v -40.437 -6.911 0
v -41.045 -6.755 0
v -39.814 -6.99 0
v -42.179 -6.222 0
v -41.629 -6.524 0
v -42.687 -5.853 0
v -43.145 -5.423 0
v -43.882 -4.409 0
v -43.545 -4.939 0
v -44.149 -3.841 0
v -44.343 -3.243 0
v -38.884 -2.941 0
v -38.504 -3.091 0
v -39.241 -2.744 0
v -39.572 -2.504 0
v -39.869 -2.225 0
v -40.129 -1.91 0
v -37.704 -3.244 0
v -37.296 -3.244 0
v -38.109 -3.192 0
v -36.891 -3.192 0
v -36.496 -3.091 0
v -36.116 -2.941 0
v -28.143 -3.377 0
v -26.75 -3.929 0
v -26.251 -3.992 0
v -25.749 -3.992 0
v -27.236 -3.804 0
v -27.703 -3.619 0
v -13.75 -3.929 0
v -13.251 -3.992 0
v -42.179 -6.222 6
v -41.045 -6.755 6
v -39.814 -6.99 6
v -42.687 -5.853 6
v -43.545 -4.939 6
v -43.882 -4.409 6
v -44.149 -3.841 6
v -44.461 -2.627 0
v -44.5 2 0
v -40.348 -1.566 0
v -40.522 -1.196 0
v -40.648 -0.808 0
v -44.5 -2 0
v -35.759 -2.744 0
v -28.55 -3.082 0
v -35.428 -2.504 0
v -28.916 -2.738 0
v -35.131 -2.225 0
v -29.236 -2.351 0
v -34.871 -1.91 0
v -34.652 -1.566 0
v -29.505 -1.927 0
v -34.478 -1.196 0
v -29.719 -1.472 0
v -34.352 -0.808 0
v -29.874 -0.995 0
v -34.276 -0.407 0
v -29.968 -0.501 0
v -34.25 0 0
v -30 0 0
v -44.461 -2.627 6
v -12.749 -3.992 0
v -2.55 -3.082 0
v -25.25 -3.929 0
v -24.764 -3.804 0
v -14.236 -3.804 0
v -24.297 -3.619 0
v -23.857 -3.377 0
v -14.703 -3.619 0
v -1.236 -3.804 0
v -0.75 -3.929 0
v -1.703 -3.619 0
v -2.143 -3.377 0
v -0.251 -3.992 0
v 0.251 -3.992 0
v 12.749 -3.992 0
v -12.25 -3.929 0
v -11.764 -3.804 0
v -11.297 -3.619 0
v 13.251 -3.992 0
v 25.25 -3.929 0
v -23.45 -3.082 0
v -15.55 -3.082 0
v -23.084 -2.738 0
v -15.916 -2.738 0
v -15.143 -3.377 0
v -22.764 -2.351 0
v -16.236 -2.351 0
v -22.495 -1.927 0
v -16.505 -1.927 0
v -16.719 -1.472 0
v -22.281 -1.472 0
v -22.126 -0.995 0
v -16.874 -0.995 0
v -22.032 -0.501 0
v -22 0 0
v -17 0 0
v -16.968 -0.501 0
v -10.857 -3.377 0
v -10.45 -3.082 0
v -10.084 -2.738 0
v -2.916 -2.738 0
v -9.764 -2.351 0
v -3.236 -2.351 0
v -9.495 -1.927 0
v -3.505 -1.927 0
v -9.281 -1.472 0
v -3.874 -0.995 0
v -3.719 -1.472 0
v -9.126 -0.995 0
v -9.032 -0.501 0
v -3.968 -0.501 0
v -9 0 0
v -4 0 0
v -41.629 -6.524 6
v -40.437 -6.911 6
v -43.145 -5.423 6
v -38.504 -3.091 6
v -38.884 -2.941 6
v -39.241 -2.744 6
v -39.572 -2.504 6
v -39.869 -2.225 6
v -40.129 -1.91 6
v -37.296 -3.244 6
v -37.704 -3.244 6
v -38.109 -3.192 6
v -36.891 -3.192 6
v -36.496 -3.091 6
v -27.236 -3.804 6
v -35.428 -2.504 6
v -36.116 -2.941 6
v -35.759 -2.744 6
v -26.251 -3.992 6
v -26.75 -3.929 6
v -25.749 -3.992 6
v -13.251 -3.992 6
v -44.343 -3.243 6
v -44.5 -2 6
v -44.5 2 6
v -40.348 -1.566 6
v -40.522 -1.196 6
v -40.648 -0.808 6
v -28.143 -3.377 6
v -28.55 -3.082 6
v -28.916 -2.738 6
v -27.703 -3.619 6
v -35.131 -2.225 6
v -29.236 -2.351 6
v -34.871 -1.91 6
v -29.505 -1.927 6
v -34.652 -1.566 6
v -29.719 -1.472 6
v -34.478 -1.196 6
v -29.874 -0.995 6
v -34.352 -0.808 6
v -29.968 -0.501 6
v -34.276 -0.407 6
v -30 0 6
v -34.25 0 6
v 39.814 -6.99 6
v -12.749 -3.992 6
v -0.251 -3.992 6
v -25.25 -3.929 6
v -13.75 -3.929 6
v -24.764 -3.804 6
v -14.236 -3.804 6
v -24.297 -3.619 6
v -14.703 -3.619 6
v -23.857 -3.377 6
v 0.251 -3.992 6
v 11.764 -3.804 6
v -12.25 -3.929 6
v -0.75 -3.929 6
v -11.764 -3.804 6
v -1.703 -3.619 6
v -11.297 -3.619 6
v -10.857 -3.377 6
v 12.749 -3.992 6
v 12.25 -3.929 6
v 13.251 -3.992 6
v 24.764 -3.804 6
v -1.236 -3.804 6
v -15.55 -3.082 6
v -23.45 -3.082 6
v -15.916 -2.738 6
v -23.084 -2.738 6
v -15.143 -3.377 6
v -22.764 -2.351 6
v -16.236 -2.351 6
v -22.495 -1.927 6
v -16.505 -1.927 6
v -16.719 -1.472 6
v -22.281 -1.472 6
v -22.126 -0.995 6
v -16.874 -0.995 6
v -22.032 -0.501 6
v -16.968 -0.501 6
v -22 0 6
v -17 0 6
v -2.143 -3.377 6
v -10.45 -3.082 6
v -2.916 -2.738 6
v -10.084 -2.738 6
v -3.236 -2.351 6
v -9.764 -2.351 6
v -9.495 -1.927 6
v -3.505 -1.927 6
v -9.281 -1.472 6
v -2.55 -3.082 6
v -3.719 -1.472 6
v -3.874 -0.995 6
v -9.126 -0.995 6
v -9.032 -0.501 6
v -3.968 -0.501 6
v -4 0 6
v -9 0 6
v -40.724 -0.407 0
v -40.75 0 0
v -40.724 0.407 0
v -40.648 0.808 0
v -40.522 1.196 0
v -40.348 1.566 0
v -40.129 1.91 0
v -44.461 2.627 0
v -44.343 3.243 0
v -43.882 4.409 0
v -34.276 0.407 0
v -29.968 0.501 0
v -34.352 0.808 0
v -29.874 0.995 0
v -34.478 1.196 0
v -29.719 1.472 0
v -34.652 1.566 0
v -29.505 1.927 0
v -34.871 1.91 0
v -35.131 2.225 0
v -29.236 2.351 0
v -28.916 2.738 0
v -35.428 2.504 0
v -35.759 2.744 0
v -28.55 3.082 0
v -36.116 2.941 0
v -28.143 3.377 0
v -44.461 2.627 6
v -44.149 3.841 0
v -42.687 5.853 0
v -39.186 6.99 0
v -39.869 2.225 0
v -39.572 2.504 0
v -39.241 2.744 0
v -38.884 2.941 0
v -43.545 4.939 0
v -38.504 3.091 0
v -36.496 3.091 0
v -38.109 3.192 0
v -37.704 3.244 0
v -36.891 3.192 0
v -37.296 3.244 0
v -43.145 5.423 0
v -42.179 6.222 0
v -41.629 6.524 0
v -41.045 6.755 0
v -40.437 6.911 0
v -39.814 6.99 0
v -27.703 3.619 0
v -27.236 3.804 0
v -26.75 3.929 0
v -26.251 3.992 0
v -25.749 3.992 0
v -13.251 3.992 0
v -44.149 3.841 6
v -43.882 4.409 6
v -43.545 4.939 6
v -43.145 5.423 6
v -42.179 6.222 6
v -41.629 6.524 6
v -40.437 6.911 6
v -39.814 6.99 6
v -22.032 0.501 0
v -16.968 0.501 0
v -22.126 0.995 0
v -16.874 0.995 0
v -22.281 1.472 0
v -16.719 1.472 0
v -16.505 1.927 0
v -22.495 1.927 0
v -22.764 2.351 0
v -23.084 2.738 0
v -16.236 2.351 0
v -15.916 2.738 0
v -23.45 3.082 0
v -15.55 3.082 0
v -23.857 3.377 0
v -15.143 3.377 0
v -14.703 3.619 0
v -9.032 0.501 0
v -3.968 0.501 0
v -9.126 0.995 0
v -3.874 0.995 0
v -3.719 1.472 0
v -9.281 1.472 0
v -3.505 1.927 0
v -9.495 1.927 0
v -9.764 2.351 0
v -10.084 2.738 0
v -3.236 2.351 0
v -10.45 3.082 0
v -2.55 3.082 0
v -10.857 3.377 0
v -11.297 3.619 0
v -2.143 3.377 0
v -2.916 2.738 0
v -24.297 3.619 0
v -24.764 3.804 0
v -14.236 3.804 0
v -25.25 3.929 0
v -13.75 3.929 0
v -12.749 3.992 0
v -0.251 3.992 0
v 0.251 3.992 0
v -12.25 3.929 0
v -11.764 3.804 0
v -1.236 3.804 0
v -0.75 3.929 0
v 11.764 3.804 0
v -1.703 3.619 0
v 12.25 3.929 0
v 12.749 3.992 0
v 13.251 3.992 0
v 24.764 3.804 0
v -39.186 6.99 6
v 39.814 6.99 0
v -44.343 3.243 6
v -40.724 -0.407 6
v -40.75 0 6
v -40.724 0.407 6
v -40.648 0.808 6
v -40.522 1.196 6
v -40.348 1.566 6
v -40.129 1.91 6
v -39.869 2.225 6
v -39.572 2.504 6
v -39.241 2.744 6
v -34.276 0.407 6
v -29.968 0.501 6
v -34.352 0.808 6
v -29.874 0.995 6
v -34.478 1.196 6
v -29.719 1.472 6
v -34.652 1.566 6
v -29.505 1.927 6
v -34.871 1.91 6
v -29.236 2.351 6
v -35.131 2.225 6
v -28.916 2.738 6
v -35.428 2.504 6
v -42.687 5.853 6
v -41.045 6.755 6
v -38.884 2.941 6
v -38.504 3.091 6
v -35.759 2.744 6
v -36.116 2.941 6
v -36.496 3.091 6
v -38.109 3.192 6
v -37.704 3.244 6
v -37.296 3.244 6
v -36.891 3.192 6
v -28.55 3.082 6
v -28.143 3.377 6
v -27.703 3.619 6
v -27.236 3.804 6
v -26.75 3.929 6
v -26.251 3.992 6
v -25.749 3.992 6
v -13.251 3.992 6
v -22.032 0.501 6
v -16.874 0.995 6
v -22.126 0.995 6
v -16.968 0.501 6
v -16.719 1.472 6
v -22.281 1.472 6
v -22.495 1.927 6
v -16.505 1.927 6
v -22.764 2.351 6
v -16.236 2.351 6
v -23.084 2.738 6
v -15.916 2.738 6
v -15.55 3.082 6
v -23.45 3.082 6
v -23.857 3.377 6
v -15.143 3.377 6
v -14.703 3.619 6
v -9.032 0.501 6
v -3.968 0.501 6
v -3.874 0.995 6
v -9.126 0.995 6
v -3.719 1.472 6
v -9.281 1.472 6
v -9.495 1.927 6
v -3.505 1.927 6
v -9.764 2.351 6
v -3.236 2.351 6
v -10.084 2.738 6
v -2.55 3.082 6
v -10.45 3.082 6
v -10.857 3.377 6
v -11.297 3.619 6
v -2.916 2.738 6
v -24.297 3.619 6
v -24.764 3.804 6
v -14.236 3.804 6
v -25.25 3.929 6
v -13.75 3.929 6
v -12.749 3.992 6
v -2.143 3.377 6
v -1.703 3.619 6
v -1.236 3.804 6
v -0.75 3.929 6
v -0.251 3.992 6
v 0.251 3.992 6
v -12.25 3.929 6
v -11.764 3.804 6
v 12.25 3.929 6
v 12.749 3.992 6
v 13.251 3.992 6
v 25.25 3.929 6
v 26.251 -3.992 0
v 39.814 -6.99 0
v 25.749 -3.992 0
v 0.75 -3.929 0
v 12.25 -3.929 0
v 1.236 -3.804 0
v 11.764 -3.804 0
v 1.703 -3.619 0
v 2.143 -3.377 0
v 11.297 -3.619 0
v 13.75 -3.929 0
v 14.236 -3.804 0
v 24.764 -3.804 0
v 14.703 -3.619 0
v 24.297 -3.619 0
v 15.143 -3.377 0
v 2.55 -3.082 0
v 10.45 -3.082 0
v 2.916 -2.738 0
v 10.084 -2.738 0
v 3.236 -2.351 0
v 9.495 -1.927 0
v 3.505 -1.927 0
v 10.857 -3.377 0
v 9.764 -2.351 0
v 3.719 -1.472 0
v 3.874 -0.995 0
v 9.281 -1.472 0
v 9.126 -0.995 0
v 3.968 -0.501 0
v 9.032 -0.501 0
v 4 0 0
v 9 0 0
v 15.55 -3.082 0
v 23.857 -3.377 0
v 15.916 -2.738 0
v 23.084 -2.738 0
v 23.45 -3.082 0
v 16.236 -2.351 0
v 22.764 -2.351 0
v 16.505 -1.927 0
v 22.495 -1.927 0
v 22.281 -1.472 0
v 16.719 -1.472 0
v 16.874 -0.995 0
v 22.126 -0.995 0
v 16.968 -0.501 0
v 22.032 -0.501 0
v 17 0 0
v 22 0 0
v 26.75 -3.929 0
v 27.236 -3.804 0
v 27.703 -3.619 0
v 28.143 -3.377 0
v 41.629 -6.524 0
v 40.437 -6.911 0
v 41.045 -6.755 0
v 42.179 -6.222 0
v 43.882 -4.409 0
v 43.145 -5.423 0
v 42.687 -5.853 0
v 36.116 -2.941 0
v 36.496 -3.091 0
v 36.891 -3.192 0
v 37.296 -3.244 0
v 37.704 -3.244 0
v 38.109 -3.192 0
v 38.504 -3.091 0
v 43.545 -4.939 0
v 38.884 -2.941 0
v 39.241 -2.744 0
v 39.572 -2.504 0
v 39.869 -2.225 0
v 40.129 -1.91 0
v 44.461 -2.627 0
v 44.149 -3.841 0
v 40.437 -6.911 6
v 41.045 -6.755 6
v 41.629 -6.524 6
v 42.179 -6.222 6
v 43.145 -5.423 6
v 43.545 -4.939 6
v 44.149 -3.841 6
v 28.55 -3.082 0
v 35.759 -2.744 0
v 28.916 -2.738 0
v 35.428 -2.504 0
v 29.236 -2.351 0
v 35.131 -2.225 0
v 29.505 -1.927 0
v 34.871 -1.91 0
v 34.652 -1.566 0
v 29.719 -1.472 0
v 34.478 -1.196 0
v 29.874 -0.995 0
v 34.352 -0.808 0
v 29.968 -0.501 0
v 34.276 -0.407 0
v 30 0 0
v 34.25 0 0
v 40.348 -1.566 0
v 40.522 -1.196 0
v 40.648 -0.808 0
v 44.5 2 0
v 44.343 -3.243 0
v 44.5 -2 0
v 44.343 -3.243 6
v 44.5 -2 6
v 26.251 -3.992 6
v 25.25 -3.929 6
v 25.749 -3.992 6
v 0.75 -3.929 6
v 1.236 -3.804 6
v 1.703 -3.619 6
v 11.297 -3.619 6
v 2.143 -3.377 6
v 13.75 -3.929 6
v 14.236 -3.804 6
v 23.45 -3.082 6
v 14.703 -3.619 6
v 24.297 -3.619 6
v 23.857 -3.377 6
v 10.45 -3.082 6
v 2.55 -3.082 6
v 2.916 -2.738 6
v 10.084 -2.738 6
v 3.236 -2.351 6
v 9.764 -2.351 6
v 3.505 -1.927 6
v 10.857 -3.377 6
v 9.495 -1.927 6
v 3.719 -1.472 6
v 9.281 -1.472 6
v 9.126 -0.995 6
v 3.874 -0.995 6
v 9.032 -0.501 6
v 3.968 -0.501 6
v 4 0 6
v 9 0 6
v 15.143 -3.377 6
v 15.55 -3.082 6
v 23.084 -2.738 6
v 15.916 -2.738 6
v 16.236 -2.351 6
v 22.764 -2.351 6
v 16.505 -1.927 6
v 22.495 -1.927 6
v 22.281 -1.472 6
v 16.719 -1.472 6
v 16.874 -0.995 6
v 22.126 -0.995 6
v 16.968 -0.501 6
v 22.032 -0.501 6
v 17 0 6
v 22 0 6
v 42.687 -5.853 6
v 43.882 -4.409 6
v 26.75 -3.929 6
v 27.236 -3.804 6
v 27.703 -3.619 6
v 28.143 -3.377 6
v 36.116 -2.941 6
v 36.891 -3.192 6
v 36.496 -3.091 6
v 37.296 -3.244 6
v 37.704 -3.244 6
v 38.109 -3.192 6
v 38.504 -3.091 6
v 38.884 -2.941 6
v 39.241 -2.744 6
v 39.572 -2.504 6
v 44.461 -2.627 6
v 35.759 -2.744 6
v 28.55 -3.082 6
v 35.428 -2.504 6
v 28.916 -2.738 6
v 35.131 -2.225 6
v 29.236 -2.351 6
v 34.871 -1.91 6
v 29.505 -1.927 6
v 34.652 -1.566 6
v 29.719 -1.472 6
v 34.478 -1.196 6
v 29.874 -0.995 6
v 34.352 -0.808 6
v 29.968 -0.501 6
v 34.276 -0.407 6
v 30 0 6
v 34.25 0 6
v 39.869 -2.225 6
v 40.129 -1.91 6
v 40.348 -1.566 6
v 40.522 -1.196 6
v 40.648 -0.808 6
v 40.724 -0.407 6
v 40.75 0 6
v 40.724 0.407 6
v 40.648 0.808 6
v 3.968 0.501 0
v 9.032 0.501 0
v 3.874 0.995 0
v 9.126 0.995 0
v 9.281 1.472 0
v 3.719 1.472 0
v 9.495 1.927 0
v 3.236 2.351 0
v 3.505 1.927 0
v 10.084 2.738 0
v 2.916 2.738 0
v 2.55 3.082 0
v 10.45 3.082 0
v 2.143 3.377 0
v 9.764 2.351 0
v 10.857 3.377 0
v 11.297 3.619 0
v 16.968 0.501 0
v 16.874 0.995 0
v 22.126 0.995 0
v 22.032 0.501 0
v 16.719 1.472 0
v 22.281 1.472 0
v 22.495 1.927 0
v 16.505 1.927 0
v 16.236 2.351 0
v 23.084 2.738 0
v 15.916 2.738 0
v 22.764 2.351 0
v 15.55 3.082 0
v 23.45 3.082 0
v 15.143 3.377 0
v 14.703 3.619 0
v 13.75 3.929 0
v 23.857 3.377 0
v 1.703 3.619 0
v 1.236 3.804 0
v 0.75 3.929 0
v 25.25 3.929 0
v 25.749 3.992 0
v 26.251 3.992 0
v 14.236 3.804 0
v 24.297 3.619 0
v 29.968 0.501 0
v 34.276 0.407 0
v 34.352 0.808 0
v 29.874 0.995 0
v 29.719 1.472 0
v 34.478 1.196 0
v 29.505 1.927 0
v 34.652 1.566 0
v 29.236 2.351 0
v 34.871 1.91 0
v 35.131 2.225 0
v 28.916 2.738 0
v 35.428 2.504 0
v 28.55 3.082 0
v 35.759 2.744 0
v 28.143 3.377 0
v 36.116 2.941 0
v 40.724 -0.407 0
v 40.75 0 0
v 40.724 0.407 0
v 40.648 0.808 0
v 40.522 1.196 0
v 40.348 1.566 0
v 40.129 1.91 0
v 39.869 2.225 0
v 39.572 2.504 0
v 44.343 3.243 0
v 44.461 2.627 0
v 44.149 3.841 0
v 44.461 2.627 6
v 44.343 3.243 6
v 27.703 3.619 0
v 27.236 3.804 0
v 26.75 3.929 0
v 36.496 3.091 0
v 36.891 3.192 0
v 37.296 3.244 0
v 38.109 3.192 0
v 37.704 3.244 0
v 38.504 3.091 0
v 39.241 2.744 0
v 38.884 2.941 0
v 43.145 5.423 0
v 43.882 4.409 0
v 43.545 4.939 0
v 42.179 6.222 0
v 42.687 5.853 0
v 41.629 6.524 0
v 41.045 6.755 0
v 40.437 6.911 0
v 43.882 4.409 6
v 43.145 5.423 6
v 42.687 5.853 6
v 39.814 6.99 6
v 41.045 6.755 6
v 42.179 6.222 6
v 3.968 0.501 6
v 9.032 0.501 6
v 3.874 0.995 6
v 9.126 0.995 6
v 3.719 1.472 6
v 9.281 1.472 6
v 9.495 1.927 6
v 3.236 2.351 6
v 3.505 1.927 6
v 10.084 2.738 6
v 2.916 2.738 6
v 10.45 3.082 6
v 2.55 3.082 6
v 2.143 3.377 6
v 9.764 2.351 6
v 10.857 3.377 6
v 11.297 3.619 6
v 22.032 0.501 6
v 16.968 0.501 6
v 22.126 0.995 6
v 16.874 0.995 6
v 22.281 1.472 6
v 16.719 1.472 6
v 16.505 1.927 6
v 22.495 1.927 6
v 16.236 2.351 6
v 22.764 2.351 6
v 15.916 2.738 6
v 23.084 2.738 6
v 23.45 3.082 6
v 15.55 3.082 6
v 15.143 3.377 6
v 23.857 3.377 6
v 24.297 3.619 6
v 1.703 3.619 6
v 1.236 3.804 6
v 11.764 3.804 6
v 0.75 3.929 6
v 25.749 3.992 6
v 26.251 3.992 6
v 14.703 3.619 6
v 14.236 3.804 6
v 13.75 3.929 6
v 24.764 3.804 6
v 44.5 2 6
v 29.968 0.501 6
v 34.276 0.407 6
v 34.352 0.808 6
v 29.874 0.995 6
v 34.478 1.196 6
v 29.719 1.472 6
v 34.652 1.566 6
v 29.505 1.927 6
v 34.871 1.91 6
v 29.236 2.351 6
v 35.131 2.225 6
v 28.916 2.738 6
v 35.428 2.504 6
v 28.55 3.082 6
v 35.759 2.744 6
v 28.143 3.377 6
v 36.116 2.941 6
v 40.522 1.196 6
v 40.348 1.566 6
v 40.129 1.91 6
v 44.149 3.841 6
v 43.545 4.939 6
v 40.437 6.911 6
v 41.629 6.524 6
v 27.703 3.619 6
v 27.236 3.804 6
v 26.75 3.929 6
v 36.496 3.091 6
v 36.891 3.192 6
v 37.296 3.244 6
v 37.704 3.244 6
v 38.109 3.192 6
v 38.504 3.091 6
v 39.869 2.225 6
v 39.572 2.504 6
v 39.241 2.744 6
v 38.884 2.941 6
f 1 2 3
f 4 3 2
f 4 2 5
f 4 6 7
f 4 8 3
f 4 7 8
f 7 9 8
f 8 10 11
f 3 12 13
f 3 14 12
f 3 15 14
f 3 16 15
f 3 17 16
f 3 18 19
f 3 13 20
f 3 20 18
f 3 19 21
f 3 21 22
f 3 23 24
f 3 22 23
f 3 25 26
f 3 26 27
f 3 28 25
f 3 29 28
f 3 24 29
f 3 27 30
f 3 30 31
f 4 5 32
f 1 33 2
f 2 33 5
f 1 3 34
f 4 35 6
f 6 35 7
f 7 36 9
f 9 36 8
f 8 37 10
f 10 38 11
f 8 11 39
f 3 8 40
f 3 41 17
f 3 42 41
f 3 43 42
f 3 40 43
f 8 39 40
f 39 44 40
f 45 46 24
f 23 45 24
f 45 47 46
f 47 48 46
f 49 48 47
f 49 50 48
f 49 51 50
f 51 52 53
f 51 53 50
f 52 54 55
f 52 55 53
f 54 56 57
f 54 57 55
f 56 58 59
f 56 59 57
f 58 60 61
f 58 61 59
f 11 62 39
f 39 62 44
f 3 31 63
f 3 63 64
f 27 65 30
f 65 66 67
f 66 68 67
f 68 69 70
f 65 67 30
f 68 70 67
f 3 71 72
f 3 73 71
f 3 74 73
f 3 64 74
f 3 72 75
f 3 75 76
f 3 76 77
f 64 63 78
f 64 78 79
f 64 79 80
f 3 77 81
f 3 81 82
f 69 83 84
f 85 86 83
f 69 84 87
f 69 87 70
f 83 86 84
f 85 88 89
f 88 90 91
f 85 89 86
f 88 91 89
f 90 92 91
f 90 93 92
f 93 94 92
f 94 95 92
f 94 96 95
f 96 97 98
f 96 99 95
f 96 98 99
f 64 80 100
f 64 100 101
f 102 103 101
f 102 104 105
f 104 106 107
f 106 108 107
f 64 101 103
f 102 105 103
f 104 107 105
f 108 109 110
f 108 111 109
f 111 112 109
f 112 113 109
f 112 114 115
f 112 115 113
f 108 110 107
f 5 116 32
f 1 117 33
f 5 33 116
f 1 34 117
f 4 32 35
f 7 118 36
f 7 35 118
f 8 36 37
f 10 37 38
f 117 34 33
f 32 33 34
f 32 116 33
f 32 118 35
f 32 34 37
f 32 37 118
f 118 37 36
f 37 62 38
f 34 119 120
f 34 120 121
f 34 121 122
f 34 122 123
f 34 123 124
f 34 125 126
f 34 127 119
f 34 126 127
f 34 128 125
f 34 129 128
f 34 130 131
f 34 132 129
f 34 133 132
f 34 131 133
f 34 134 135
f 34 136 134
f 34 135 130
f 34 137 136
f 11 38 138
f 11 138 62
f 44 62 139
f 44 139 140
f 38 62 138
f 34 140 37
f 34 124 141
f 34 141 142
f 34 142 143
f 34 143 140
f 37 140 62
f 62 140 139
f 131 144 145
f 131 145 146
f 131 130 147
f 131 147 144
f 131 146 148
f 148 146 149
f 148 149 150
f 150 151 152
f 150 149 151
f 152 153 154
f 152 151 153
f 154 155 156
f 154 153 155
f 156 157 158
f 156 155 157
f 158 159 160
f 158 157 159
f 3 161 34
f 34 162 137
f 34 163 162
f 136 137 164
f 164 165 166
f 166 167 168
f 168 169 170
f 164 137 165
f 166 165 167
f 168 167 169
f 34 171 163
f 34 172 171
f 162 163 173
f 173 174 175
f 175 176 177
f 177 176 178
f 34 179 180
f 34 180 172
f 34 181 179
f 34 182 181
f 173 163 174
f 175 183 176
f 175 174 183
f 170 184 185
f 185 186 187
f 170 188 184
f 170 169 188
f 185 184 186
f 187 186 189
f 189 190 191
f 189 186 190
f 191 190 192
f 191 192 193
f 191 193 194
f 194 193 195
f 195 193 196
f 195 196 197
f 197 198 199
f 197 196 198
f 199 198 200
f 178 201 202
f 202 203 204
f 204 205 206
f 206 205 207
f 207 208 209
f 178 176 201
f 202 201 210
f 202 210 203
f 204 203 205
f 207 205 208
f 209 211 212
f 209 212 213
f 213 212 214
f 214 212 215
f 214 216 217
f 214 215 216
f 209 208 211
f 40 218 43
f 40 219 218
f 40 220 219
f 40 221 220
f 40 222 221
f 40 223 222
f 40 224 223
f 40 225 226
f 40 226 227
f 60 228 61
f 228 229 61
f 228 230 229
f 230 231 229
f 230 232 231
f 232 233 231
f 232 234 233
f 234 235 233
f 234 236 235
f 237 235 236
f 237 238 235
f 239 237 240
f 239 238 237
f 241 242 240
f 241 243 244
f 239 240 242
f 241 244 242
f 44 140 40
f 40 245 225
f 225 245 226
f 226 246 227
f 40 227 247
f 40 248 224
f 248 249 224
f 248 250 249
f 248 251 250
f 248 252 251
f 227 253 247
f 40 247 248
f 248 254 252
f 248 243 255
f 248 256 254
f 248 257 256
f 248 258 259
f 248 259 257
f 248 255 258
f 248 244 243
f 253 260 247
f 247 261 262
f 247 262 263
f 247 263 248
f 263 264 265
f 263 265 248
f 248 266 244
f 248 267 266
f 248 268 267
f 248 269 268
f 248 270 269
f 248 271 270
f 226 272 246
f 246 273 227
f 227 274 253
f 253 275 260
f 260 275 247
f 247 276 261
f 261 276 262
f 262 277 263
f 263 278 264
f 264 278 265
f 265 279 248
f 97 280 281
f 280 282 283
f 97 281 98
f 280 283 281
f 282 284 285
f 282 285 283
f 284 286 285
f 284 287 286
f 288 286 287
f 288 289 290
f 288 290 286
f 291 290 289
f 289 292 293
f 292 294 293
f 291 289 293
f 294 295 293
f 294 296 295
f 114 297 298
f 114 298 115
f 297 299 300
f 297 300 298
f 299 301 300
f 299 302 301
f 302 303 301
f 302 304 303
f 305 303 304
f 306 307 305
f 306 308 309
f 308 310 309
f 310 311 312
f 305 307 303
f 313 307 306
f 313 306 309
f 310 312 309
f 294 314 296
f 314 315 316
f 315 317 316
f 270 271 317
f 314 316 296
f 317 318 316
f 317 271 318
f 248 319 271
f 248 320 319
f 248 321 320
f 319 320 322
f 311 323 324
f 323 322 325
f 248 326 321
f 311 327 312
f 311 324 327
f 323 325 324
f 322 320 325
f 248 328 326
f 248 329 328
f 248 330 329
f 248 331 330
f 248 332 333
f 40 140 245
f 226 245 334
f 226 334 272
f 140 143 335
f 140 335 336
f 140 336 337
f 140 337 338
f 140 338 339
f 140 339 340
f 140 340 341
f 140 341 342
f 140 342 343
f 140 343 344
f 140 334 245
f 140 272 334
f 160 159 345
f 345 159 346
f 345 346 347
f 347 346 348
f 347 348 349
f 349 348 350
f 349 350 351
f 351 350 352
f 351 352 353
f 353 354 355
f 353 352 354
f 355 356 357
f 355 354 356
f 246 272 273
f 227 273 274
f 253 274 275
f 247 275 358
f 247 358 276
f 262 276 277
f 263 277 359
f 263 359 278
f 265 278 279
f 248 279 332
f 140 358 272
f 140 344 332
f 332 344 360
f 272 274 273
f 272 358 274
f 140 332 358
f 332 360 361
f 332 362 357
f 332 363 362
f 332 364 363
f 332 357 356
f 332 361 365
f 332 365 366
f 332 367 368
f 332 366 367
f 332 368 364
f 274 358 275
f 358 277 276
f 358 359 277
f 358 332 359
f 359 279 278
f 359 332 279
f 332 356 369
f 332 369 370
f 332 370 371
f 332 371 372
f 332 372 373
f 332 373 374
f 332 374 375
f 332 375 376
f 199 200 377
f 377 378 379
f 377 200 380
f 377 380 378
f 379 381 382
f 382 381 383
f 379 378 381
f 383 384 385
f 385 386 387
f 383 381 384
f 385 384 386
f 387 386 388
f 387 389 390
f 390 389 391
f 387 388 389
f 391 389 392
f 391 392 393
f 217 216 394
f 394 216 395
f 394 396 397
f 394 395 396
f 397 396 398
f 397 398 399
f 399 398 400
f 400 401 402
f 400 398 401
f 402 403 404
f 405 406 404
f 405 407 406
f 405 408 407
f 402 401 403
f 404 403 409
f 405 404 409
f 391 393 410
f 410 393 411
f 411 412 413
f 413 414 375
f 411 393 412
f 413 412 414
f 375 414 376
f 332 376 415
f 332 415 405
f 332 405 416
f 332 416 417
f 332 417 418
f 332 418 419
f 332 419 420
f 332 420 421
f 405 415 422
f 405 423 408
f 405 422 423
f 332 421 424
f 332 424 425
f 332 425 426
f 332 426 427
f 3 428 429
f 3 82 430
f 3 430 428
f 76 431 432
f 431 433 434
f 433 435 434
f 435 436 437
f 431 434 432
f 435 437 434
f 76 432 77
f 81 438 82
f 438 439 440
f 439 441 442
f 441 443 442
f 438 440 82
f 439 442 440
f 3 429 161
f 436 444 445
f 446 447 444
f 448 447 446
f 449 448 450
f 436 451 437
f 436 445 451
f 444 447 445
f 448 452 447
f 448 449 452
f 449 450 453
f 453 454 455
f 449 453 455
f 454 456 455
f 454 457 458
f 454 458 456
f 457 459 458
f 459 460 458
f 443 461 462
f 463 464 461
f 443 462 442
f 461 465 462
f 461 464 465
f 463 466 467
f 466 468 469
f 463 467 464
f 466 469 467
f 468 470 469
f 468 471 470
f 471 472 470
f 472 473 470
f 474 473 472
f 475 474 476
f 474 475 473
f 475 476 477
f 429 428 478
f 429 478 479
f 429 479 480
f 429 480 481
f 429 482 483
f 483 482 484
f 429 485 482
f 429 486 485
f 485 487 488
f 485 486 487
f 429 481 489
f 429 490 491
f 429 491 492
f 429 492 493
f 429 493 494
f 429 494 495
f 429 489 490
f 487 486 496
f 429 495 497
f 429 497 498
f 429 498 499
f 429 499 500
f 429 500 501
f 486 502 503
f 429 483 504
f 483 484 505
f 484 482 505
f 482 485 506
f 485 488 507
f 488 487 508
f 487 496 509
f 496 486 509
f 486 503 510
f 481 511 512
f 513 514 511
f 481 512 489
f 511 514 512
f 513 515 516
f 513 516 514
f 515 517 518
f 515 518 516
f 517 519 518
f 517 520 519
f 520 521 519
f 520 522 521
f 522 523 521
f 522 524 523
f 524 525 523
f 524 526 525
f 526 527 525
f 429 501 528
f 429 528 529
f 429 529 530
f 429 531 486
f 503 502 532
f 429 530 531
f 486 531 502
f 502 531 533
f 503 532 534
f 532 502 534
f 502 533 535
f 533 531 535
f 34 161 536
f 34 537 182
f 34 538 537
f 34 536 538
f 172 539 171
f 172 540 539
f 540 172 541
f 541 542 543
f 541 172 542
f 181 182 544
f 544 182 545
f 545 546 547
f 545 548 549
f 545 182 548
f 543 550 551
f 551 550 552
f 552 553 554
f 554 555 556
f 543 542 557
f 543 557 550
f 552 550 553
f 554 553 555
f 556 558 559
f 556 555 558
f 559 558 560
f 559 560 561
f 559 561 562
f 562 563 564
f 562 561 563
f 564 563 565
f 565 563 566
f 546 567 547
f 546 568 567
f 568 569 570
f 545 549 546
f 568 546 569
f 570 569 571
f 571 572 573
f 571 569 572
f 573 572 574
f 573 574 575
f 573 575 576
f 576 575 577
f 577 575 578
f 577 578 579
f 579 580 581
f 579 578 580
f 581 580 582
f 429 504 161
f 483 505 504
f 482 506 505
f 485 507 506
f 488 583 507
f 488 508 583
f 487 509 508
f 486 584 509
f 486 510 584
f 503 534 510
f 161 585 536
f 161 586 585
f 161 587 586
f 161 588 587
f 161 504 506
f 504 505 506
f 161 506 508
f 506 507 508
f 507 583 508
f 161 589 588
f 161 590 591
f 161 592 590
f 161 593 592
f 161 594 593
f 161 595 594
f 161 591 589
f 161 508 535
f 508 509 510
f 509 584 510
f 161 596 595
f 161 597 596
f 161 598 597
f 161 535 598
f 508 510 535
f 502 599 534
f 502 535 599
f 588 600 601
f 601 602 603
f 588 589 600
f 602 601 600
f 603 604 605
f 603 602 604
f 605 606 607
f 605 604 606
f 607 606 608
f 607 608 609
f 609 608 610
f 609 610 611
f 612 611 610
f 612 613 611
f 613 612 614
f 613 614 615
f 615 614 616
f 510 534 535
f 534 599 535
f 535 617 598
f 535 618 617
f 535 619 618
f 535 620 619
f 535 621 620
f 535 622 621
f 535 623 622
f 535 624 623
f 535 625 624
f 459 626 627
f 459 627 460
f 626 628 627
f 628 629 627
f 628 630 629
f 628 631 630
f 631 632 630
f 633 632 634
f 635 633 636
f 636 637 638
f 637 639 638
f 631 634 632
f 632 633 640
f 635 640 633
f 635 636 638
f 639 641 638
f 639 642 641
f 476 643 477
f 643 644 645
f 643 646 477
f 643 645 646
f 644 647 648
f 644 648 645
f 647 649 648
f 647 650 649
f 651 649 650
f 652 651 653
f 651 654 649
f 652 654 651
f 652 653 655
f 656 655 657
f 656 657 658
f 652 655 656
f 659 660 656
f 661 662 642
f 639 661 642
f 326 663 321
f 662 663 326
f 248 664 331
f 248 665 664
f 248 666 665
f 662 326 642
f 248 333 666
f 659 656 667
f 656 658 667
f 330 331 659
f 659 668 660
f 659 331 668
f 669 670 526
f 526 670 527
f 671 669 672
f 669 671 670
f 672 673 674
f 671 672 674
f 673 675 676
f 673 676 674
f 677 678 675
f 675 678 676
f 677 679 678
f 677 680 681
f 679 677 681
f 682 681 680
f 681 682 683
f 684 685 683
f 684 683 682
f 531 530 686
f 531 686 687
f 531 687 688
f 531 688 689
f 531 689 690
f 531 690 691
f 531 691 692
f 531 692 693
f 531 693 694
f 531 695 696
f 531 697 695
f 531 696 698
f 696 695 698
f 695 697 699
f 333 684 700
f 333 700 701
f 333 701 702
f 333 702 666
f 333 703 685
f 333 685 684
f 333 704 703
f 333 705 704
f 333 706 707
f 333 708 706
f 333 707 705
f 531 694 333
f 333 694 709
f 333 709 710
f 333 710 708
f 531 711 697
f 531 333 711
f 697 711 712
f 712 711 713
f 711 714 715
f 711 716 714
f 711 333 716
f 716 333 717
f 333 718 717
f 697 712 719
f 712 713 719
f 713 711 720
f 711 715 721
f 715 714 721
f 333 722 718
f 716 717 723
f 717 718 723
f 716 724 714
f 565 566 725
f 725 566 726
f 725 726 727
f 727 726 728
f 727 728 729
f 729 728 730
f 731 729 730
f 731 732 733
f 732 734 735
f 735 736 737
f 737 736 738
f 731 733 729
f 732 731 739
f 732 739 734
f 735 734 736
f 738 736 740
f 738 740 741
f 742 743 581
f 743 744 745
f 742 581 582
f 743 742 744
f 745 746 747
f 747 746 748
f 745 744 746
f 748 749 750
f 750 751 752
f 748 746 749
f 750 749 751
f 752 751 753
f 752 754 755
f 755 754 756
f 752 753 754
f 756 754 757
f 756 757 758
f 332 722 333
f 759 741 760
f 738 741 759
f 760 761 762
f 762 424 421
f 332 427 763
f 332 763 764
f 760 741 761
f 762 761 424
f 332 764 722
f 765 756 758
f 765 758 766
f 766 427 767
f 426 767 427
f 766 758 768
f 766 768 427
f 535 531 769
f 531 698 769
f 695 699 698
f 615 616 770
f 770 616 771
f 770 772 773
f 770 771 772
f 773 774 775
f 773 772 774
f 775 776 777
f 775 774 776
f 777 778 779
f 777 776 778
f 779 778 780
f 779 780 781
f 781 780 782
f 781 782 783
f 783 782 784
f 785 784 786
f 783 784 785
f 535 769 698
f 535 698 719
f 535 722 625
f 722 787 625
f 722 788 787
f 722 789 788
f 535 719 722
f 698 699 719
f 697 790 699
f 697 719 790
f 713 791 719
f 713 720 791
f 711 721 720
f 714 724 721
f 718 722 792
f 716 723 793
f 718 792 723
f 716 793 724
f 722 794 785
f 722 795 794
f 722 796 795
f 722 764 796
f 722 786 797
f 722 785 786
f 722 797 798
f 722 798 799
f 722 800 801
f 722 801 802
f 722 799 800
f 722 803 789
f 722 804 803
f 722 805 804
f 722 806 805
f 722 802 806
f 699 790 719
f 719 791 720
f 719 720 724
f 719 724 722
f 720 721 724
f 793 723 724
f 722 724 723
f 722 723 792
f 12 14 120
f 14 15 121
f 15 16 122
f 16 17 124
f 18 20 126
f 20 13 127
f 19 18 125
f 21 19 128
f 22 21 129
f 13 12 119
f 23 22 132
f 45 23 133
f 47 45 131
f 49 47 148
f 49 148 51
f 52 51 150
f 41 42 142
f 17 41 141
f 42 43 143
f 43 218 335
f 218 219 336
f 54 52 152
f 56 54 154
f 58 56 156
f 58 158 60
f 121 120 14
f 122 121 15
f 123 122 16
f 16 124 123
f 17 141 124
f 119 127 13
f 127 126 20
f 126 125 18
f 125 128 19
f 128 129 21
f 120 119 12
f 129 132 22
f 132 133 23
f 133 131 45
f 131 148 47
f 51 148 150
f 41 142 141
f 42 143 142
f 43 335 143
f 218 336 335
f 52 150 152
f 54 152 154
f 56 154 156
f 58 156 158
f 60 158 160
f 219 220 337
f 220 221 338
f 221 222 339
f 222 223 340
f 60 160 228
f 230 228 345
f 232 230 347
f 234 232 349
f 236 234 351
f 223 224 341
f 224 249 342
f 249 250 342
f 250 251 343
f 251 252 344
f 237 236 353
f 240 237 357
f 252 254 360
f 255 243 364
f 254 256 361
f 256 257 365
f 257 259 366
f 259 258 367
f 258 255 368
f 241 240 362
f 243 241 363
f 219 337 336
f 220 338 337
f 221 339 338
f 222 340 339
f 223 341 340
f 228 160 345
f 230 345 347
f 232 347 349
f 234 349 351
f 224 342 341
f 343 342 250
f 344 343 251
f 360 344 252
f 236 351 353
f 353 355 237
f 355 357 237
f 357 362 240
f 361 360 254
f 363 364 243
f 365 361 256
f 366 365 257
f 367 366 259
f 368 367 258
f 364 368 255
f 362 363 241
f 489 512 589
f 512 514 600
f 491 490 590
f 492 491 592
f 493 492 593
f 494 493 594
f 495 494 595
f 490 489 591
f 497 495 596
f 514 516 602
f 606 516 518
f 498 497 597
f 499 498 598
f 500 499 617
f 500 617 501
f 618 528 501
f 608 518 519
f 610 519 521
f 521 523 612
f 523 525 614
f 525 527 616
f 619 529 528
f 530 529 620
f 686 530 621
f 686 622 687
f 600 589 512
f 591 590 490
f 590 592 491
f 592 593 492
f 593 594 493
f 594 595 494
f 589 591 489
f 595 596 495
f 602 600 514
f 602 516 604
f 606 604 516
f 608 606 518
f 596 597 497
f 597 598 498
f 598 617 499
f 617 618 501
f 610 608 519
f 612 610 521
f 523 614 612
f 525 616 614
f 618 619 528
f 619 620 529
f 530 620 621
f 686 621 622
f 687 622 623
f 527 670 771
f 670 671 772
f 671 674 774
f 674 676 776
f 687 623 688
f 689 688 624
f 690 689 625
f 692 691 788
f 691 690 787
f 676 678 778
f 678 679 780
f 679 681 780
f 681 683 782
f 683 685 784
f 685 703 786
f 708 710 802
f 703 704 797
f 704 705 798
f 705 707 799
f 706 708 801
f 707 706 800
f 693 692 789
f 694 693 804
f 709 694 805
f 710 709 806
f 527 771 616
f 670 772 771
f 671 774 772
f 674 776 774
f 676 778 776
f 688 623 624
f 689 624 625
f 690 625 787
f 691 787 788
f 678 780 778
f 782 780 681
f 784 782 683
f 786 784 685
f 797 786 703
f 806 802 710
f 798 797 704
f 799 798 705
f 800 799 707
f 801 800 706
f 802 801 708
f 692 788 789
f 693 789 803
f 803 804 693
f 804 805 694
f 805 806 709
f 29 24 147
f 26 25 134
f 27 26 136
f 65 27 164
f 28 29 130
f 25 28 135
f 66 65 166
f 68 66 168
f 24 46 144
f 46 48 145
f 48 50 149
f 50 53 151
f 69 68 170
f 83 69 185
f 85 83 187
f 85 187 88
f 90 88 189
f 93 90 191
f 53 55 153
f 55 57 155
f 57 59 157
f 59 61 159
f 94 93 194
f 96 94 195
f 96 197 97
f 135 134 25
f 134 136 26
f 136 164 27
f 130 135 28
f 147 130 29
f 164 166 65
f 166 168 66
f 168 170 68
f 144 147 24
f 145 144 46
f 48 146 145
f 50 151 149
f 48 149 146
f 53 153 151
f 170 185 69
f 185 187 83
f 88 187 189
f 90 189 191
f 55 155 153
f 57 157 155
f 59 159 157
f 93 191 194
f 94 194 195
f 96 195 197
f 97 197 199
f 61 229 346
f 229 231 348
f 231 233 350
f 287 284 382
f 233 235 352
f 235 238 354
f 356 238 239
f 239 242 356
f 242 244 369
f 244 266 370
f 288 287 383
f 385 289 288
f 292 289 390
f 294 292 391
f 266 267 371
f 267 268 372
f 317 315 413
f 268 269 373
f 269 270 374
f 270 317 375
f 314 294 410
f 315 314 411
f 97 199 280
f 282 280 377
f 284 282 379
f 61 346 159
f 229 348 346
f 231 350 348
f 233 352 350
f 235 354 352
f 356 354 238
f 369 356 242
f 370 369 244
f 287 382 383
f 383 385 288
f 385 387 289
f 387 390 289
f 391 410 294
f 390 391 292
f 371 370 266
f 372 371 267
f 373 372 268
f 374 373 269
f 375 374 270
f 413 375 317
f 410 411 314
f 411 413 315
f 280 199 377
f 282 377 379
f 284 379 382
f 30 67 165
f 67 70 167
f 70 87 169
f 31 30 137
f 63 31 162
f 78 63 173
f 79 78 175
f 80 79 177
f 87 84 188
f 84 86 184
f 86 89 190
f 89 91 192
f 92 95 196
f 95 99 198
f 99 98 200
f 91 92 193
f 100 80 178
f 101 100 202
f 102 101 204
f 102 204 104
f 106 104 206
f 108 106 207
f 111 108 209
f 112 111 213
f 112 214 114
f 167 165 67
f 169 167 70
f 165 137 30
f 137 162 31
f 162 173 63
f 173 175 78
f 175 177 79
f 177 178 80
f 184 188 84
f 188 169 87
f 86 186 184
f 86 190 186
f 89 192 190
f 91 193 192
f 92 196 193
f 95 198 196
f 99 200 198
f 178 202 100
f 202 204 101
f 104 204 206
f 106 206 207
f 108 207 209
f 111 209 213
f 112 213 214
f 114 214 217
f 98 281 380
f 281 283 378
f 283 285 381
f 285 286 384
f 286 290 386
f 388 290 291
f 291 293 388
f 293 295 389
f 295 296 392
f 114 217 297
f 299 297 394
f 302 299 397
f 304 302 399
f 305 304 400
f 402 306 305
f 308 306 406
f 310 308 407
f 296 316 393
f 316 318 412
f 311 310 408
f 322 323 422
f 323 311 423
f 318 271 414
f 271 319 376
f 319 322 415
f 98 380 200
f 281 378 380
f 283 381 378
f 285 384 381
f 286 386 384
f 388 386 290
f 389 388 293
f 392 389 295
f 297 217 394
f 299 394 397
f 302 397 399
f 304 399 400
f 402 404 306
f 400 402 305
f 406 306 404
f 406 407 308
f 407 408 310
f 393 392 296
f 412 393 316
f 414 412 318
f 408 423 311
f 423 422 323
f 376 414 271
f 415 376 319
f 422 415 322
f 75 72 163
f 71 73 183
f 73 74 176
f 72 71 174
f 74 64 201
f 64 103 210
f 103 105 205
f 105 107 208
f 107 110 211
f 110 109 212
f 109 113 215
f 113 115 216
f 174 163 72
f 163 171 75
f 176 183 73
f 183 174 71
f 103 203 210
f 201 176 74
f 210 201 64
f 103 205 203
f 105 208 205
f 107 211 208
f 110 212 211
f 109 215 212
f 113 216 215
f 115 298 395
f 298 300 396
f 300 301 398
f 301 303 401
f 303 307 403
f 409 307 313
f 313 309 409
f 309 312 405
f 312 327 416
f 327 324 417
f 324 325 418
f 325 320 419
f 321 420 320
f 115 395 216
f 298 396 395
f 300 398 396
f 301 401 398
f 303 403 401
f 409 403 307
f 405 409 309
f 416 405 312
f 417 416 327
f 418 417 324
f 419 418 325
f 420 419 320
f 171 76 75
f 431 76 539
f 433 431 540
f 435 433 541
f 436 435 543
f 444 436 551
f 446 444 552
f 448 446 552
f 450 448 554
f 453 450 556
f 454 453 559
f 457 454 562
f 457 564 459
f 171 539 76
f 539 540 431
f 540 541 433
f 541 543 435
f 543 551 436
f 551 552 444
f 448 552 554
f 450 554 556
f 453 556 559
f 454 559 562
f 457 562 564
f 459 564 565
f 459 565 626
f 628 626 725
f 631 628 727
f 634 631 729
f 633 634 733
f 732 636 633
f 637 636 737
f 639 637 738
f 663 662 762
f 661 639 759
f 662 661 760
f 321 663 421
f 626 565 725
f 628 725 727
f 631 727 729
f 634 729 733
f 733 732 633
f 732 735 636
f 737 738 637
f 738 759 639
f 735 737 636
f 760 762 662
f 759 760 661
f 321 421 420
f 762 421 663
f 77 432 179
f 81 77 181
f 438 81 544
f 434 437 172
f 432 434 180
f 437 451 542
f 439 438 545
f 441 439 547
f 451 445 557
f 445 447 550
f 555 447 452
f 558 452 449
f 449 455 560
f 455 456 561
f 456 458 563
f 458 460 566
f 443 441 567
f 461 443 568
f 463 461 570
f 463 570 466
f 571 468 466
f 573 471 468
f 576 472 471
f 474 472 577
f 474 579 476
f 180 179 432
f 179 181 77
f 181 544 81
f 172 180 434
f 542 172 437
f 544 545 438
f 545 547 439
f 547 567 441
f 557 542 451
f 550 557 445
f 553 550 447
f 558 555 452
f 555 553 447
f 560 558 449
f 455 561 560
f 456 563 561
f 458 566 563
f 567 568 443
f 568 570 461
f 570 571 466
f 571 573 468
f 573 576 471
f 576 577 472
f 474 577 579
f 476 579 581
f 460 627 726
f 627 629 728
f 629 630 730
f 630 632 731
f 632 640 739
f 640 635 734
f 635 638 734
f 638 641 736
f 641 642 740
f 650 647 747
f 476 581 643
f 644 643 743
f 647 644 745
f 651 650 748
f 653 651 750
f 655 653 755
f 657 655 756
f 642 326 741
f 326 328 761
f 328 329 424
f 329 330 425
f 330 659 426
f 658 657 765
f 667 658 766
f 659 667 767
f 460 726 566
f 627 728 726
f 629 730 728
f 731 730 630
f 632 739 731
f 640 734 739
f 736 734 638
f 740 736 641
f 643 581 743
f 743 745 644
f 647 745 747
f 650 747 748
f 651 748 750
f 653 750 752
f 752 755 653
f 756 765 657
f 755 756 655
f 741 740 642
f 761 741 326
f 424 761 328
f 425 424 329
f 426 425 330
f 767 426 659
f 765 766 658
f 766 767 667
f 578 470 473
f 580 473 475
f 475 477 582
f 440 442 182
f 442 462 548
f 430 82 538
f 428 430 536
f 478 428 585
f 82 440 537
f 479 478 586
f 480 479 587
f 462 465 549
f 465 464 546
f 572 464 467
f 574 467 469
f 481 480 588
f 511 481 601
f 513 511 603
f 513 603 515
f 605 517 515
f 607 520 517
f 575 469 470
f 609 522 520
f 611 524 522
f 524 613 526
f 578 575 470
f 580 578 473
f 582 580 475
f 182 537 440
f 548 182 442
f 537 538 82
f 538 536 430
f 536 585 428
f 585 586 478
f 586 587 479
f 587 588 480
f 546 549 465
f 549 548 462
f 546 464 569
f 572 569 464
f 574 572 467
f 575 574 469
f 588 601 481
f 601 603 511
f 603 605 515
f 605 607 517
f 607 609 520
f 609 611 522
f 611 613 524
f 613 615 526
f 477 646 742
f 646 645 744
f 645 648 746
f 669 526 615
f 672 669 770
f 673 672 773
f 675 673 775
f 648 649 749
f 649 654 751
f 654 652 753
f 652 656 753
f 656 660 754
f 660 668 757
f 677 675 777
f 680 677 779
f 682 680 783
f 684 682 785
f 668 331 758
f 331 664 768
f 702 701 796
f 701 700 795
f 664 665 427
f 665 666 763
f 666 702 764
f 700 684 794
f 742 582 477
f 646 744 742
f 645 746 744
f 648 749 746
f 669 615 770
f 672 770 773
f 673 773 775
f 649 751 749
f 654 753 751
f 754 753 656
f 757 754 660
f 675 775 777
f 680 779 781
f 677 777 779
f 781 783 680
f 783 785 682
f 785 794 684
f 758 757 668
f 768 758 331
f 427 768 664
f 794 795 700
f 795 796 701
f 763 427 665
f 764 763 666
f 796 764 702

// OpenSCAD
$fn = 50;

difference() {
	union() {
		hull() {
			translate(v = [-39.5, 2.0, 0]) {
				cylinder(h = 6, r = 5);
			}
			translate(v = [39.5, 2.0, 0]) {
				cylinder(h = 6, r = 5);
			}
			translate(v = [-39.5, -2.0, 0]) {
				cylinder(h = 6, r = 5);
			}
			translate(v = [39.5, -2.0, 0]) {
				cylinder(h = 6, r = 5);
			}
		}
	}
	union() {
		translate(v = [-37.5, 0.0, 0]) {
			cylinder(h = 6, r = 3.25);
		}
		translate(v = [37.5, 0.0, 0]) {
			cylinder(h = 6, r = 3.25);
		}
		translate(v = [-26.0, 0, 0.0]) {
			cylinder(h = 6, r = 4.0);
		}
		translate(v = [-13.0, 0, 0.0]) {
			cylinder(h = 6, r = 4.0);
		}
		cylinder(h = 6, r = 4.0);
		translate(v = [13.0, 0, 0.0]) {
			cylinder(h = 6, r = 4.0);
		}
		translate(v = [26.0, 0, 0.0]) {
			cylinder(h = 6, r = 4.0);
		}
	}
}
